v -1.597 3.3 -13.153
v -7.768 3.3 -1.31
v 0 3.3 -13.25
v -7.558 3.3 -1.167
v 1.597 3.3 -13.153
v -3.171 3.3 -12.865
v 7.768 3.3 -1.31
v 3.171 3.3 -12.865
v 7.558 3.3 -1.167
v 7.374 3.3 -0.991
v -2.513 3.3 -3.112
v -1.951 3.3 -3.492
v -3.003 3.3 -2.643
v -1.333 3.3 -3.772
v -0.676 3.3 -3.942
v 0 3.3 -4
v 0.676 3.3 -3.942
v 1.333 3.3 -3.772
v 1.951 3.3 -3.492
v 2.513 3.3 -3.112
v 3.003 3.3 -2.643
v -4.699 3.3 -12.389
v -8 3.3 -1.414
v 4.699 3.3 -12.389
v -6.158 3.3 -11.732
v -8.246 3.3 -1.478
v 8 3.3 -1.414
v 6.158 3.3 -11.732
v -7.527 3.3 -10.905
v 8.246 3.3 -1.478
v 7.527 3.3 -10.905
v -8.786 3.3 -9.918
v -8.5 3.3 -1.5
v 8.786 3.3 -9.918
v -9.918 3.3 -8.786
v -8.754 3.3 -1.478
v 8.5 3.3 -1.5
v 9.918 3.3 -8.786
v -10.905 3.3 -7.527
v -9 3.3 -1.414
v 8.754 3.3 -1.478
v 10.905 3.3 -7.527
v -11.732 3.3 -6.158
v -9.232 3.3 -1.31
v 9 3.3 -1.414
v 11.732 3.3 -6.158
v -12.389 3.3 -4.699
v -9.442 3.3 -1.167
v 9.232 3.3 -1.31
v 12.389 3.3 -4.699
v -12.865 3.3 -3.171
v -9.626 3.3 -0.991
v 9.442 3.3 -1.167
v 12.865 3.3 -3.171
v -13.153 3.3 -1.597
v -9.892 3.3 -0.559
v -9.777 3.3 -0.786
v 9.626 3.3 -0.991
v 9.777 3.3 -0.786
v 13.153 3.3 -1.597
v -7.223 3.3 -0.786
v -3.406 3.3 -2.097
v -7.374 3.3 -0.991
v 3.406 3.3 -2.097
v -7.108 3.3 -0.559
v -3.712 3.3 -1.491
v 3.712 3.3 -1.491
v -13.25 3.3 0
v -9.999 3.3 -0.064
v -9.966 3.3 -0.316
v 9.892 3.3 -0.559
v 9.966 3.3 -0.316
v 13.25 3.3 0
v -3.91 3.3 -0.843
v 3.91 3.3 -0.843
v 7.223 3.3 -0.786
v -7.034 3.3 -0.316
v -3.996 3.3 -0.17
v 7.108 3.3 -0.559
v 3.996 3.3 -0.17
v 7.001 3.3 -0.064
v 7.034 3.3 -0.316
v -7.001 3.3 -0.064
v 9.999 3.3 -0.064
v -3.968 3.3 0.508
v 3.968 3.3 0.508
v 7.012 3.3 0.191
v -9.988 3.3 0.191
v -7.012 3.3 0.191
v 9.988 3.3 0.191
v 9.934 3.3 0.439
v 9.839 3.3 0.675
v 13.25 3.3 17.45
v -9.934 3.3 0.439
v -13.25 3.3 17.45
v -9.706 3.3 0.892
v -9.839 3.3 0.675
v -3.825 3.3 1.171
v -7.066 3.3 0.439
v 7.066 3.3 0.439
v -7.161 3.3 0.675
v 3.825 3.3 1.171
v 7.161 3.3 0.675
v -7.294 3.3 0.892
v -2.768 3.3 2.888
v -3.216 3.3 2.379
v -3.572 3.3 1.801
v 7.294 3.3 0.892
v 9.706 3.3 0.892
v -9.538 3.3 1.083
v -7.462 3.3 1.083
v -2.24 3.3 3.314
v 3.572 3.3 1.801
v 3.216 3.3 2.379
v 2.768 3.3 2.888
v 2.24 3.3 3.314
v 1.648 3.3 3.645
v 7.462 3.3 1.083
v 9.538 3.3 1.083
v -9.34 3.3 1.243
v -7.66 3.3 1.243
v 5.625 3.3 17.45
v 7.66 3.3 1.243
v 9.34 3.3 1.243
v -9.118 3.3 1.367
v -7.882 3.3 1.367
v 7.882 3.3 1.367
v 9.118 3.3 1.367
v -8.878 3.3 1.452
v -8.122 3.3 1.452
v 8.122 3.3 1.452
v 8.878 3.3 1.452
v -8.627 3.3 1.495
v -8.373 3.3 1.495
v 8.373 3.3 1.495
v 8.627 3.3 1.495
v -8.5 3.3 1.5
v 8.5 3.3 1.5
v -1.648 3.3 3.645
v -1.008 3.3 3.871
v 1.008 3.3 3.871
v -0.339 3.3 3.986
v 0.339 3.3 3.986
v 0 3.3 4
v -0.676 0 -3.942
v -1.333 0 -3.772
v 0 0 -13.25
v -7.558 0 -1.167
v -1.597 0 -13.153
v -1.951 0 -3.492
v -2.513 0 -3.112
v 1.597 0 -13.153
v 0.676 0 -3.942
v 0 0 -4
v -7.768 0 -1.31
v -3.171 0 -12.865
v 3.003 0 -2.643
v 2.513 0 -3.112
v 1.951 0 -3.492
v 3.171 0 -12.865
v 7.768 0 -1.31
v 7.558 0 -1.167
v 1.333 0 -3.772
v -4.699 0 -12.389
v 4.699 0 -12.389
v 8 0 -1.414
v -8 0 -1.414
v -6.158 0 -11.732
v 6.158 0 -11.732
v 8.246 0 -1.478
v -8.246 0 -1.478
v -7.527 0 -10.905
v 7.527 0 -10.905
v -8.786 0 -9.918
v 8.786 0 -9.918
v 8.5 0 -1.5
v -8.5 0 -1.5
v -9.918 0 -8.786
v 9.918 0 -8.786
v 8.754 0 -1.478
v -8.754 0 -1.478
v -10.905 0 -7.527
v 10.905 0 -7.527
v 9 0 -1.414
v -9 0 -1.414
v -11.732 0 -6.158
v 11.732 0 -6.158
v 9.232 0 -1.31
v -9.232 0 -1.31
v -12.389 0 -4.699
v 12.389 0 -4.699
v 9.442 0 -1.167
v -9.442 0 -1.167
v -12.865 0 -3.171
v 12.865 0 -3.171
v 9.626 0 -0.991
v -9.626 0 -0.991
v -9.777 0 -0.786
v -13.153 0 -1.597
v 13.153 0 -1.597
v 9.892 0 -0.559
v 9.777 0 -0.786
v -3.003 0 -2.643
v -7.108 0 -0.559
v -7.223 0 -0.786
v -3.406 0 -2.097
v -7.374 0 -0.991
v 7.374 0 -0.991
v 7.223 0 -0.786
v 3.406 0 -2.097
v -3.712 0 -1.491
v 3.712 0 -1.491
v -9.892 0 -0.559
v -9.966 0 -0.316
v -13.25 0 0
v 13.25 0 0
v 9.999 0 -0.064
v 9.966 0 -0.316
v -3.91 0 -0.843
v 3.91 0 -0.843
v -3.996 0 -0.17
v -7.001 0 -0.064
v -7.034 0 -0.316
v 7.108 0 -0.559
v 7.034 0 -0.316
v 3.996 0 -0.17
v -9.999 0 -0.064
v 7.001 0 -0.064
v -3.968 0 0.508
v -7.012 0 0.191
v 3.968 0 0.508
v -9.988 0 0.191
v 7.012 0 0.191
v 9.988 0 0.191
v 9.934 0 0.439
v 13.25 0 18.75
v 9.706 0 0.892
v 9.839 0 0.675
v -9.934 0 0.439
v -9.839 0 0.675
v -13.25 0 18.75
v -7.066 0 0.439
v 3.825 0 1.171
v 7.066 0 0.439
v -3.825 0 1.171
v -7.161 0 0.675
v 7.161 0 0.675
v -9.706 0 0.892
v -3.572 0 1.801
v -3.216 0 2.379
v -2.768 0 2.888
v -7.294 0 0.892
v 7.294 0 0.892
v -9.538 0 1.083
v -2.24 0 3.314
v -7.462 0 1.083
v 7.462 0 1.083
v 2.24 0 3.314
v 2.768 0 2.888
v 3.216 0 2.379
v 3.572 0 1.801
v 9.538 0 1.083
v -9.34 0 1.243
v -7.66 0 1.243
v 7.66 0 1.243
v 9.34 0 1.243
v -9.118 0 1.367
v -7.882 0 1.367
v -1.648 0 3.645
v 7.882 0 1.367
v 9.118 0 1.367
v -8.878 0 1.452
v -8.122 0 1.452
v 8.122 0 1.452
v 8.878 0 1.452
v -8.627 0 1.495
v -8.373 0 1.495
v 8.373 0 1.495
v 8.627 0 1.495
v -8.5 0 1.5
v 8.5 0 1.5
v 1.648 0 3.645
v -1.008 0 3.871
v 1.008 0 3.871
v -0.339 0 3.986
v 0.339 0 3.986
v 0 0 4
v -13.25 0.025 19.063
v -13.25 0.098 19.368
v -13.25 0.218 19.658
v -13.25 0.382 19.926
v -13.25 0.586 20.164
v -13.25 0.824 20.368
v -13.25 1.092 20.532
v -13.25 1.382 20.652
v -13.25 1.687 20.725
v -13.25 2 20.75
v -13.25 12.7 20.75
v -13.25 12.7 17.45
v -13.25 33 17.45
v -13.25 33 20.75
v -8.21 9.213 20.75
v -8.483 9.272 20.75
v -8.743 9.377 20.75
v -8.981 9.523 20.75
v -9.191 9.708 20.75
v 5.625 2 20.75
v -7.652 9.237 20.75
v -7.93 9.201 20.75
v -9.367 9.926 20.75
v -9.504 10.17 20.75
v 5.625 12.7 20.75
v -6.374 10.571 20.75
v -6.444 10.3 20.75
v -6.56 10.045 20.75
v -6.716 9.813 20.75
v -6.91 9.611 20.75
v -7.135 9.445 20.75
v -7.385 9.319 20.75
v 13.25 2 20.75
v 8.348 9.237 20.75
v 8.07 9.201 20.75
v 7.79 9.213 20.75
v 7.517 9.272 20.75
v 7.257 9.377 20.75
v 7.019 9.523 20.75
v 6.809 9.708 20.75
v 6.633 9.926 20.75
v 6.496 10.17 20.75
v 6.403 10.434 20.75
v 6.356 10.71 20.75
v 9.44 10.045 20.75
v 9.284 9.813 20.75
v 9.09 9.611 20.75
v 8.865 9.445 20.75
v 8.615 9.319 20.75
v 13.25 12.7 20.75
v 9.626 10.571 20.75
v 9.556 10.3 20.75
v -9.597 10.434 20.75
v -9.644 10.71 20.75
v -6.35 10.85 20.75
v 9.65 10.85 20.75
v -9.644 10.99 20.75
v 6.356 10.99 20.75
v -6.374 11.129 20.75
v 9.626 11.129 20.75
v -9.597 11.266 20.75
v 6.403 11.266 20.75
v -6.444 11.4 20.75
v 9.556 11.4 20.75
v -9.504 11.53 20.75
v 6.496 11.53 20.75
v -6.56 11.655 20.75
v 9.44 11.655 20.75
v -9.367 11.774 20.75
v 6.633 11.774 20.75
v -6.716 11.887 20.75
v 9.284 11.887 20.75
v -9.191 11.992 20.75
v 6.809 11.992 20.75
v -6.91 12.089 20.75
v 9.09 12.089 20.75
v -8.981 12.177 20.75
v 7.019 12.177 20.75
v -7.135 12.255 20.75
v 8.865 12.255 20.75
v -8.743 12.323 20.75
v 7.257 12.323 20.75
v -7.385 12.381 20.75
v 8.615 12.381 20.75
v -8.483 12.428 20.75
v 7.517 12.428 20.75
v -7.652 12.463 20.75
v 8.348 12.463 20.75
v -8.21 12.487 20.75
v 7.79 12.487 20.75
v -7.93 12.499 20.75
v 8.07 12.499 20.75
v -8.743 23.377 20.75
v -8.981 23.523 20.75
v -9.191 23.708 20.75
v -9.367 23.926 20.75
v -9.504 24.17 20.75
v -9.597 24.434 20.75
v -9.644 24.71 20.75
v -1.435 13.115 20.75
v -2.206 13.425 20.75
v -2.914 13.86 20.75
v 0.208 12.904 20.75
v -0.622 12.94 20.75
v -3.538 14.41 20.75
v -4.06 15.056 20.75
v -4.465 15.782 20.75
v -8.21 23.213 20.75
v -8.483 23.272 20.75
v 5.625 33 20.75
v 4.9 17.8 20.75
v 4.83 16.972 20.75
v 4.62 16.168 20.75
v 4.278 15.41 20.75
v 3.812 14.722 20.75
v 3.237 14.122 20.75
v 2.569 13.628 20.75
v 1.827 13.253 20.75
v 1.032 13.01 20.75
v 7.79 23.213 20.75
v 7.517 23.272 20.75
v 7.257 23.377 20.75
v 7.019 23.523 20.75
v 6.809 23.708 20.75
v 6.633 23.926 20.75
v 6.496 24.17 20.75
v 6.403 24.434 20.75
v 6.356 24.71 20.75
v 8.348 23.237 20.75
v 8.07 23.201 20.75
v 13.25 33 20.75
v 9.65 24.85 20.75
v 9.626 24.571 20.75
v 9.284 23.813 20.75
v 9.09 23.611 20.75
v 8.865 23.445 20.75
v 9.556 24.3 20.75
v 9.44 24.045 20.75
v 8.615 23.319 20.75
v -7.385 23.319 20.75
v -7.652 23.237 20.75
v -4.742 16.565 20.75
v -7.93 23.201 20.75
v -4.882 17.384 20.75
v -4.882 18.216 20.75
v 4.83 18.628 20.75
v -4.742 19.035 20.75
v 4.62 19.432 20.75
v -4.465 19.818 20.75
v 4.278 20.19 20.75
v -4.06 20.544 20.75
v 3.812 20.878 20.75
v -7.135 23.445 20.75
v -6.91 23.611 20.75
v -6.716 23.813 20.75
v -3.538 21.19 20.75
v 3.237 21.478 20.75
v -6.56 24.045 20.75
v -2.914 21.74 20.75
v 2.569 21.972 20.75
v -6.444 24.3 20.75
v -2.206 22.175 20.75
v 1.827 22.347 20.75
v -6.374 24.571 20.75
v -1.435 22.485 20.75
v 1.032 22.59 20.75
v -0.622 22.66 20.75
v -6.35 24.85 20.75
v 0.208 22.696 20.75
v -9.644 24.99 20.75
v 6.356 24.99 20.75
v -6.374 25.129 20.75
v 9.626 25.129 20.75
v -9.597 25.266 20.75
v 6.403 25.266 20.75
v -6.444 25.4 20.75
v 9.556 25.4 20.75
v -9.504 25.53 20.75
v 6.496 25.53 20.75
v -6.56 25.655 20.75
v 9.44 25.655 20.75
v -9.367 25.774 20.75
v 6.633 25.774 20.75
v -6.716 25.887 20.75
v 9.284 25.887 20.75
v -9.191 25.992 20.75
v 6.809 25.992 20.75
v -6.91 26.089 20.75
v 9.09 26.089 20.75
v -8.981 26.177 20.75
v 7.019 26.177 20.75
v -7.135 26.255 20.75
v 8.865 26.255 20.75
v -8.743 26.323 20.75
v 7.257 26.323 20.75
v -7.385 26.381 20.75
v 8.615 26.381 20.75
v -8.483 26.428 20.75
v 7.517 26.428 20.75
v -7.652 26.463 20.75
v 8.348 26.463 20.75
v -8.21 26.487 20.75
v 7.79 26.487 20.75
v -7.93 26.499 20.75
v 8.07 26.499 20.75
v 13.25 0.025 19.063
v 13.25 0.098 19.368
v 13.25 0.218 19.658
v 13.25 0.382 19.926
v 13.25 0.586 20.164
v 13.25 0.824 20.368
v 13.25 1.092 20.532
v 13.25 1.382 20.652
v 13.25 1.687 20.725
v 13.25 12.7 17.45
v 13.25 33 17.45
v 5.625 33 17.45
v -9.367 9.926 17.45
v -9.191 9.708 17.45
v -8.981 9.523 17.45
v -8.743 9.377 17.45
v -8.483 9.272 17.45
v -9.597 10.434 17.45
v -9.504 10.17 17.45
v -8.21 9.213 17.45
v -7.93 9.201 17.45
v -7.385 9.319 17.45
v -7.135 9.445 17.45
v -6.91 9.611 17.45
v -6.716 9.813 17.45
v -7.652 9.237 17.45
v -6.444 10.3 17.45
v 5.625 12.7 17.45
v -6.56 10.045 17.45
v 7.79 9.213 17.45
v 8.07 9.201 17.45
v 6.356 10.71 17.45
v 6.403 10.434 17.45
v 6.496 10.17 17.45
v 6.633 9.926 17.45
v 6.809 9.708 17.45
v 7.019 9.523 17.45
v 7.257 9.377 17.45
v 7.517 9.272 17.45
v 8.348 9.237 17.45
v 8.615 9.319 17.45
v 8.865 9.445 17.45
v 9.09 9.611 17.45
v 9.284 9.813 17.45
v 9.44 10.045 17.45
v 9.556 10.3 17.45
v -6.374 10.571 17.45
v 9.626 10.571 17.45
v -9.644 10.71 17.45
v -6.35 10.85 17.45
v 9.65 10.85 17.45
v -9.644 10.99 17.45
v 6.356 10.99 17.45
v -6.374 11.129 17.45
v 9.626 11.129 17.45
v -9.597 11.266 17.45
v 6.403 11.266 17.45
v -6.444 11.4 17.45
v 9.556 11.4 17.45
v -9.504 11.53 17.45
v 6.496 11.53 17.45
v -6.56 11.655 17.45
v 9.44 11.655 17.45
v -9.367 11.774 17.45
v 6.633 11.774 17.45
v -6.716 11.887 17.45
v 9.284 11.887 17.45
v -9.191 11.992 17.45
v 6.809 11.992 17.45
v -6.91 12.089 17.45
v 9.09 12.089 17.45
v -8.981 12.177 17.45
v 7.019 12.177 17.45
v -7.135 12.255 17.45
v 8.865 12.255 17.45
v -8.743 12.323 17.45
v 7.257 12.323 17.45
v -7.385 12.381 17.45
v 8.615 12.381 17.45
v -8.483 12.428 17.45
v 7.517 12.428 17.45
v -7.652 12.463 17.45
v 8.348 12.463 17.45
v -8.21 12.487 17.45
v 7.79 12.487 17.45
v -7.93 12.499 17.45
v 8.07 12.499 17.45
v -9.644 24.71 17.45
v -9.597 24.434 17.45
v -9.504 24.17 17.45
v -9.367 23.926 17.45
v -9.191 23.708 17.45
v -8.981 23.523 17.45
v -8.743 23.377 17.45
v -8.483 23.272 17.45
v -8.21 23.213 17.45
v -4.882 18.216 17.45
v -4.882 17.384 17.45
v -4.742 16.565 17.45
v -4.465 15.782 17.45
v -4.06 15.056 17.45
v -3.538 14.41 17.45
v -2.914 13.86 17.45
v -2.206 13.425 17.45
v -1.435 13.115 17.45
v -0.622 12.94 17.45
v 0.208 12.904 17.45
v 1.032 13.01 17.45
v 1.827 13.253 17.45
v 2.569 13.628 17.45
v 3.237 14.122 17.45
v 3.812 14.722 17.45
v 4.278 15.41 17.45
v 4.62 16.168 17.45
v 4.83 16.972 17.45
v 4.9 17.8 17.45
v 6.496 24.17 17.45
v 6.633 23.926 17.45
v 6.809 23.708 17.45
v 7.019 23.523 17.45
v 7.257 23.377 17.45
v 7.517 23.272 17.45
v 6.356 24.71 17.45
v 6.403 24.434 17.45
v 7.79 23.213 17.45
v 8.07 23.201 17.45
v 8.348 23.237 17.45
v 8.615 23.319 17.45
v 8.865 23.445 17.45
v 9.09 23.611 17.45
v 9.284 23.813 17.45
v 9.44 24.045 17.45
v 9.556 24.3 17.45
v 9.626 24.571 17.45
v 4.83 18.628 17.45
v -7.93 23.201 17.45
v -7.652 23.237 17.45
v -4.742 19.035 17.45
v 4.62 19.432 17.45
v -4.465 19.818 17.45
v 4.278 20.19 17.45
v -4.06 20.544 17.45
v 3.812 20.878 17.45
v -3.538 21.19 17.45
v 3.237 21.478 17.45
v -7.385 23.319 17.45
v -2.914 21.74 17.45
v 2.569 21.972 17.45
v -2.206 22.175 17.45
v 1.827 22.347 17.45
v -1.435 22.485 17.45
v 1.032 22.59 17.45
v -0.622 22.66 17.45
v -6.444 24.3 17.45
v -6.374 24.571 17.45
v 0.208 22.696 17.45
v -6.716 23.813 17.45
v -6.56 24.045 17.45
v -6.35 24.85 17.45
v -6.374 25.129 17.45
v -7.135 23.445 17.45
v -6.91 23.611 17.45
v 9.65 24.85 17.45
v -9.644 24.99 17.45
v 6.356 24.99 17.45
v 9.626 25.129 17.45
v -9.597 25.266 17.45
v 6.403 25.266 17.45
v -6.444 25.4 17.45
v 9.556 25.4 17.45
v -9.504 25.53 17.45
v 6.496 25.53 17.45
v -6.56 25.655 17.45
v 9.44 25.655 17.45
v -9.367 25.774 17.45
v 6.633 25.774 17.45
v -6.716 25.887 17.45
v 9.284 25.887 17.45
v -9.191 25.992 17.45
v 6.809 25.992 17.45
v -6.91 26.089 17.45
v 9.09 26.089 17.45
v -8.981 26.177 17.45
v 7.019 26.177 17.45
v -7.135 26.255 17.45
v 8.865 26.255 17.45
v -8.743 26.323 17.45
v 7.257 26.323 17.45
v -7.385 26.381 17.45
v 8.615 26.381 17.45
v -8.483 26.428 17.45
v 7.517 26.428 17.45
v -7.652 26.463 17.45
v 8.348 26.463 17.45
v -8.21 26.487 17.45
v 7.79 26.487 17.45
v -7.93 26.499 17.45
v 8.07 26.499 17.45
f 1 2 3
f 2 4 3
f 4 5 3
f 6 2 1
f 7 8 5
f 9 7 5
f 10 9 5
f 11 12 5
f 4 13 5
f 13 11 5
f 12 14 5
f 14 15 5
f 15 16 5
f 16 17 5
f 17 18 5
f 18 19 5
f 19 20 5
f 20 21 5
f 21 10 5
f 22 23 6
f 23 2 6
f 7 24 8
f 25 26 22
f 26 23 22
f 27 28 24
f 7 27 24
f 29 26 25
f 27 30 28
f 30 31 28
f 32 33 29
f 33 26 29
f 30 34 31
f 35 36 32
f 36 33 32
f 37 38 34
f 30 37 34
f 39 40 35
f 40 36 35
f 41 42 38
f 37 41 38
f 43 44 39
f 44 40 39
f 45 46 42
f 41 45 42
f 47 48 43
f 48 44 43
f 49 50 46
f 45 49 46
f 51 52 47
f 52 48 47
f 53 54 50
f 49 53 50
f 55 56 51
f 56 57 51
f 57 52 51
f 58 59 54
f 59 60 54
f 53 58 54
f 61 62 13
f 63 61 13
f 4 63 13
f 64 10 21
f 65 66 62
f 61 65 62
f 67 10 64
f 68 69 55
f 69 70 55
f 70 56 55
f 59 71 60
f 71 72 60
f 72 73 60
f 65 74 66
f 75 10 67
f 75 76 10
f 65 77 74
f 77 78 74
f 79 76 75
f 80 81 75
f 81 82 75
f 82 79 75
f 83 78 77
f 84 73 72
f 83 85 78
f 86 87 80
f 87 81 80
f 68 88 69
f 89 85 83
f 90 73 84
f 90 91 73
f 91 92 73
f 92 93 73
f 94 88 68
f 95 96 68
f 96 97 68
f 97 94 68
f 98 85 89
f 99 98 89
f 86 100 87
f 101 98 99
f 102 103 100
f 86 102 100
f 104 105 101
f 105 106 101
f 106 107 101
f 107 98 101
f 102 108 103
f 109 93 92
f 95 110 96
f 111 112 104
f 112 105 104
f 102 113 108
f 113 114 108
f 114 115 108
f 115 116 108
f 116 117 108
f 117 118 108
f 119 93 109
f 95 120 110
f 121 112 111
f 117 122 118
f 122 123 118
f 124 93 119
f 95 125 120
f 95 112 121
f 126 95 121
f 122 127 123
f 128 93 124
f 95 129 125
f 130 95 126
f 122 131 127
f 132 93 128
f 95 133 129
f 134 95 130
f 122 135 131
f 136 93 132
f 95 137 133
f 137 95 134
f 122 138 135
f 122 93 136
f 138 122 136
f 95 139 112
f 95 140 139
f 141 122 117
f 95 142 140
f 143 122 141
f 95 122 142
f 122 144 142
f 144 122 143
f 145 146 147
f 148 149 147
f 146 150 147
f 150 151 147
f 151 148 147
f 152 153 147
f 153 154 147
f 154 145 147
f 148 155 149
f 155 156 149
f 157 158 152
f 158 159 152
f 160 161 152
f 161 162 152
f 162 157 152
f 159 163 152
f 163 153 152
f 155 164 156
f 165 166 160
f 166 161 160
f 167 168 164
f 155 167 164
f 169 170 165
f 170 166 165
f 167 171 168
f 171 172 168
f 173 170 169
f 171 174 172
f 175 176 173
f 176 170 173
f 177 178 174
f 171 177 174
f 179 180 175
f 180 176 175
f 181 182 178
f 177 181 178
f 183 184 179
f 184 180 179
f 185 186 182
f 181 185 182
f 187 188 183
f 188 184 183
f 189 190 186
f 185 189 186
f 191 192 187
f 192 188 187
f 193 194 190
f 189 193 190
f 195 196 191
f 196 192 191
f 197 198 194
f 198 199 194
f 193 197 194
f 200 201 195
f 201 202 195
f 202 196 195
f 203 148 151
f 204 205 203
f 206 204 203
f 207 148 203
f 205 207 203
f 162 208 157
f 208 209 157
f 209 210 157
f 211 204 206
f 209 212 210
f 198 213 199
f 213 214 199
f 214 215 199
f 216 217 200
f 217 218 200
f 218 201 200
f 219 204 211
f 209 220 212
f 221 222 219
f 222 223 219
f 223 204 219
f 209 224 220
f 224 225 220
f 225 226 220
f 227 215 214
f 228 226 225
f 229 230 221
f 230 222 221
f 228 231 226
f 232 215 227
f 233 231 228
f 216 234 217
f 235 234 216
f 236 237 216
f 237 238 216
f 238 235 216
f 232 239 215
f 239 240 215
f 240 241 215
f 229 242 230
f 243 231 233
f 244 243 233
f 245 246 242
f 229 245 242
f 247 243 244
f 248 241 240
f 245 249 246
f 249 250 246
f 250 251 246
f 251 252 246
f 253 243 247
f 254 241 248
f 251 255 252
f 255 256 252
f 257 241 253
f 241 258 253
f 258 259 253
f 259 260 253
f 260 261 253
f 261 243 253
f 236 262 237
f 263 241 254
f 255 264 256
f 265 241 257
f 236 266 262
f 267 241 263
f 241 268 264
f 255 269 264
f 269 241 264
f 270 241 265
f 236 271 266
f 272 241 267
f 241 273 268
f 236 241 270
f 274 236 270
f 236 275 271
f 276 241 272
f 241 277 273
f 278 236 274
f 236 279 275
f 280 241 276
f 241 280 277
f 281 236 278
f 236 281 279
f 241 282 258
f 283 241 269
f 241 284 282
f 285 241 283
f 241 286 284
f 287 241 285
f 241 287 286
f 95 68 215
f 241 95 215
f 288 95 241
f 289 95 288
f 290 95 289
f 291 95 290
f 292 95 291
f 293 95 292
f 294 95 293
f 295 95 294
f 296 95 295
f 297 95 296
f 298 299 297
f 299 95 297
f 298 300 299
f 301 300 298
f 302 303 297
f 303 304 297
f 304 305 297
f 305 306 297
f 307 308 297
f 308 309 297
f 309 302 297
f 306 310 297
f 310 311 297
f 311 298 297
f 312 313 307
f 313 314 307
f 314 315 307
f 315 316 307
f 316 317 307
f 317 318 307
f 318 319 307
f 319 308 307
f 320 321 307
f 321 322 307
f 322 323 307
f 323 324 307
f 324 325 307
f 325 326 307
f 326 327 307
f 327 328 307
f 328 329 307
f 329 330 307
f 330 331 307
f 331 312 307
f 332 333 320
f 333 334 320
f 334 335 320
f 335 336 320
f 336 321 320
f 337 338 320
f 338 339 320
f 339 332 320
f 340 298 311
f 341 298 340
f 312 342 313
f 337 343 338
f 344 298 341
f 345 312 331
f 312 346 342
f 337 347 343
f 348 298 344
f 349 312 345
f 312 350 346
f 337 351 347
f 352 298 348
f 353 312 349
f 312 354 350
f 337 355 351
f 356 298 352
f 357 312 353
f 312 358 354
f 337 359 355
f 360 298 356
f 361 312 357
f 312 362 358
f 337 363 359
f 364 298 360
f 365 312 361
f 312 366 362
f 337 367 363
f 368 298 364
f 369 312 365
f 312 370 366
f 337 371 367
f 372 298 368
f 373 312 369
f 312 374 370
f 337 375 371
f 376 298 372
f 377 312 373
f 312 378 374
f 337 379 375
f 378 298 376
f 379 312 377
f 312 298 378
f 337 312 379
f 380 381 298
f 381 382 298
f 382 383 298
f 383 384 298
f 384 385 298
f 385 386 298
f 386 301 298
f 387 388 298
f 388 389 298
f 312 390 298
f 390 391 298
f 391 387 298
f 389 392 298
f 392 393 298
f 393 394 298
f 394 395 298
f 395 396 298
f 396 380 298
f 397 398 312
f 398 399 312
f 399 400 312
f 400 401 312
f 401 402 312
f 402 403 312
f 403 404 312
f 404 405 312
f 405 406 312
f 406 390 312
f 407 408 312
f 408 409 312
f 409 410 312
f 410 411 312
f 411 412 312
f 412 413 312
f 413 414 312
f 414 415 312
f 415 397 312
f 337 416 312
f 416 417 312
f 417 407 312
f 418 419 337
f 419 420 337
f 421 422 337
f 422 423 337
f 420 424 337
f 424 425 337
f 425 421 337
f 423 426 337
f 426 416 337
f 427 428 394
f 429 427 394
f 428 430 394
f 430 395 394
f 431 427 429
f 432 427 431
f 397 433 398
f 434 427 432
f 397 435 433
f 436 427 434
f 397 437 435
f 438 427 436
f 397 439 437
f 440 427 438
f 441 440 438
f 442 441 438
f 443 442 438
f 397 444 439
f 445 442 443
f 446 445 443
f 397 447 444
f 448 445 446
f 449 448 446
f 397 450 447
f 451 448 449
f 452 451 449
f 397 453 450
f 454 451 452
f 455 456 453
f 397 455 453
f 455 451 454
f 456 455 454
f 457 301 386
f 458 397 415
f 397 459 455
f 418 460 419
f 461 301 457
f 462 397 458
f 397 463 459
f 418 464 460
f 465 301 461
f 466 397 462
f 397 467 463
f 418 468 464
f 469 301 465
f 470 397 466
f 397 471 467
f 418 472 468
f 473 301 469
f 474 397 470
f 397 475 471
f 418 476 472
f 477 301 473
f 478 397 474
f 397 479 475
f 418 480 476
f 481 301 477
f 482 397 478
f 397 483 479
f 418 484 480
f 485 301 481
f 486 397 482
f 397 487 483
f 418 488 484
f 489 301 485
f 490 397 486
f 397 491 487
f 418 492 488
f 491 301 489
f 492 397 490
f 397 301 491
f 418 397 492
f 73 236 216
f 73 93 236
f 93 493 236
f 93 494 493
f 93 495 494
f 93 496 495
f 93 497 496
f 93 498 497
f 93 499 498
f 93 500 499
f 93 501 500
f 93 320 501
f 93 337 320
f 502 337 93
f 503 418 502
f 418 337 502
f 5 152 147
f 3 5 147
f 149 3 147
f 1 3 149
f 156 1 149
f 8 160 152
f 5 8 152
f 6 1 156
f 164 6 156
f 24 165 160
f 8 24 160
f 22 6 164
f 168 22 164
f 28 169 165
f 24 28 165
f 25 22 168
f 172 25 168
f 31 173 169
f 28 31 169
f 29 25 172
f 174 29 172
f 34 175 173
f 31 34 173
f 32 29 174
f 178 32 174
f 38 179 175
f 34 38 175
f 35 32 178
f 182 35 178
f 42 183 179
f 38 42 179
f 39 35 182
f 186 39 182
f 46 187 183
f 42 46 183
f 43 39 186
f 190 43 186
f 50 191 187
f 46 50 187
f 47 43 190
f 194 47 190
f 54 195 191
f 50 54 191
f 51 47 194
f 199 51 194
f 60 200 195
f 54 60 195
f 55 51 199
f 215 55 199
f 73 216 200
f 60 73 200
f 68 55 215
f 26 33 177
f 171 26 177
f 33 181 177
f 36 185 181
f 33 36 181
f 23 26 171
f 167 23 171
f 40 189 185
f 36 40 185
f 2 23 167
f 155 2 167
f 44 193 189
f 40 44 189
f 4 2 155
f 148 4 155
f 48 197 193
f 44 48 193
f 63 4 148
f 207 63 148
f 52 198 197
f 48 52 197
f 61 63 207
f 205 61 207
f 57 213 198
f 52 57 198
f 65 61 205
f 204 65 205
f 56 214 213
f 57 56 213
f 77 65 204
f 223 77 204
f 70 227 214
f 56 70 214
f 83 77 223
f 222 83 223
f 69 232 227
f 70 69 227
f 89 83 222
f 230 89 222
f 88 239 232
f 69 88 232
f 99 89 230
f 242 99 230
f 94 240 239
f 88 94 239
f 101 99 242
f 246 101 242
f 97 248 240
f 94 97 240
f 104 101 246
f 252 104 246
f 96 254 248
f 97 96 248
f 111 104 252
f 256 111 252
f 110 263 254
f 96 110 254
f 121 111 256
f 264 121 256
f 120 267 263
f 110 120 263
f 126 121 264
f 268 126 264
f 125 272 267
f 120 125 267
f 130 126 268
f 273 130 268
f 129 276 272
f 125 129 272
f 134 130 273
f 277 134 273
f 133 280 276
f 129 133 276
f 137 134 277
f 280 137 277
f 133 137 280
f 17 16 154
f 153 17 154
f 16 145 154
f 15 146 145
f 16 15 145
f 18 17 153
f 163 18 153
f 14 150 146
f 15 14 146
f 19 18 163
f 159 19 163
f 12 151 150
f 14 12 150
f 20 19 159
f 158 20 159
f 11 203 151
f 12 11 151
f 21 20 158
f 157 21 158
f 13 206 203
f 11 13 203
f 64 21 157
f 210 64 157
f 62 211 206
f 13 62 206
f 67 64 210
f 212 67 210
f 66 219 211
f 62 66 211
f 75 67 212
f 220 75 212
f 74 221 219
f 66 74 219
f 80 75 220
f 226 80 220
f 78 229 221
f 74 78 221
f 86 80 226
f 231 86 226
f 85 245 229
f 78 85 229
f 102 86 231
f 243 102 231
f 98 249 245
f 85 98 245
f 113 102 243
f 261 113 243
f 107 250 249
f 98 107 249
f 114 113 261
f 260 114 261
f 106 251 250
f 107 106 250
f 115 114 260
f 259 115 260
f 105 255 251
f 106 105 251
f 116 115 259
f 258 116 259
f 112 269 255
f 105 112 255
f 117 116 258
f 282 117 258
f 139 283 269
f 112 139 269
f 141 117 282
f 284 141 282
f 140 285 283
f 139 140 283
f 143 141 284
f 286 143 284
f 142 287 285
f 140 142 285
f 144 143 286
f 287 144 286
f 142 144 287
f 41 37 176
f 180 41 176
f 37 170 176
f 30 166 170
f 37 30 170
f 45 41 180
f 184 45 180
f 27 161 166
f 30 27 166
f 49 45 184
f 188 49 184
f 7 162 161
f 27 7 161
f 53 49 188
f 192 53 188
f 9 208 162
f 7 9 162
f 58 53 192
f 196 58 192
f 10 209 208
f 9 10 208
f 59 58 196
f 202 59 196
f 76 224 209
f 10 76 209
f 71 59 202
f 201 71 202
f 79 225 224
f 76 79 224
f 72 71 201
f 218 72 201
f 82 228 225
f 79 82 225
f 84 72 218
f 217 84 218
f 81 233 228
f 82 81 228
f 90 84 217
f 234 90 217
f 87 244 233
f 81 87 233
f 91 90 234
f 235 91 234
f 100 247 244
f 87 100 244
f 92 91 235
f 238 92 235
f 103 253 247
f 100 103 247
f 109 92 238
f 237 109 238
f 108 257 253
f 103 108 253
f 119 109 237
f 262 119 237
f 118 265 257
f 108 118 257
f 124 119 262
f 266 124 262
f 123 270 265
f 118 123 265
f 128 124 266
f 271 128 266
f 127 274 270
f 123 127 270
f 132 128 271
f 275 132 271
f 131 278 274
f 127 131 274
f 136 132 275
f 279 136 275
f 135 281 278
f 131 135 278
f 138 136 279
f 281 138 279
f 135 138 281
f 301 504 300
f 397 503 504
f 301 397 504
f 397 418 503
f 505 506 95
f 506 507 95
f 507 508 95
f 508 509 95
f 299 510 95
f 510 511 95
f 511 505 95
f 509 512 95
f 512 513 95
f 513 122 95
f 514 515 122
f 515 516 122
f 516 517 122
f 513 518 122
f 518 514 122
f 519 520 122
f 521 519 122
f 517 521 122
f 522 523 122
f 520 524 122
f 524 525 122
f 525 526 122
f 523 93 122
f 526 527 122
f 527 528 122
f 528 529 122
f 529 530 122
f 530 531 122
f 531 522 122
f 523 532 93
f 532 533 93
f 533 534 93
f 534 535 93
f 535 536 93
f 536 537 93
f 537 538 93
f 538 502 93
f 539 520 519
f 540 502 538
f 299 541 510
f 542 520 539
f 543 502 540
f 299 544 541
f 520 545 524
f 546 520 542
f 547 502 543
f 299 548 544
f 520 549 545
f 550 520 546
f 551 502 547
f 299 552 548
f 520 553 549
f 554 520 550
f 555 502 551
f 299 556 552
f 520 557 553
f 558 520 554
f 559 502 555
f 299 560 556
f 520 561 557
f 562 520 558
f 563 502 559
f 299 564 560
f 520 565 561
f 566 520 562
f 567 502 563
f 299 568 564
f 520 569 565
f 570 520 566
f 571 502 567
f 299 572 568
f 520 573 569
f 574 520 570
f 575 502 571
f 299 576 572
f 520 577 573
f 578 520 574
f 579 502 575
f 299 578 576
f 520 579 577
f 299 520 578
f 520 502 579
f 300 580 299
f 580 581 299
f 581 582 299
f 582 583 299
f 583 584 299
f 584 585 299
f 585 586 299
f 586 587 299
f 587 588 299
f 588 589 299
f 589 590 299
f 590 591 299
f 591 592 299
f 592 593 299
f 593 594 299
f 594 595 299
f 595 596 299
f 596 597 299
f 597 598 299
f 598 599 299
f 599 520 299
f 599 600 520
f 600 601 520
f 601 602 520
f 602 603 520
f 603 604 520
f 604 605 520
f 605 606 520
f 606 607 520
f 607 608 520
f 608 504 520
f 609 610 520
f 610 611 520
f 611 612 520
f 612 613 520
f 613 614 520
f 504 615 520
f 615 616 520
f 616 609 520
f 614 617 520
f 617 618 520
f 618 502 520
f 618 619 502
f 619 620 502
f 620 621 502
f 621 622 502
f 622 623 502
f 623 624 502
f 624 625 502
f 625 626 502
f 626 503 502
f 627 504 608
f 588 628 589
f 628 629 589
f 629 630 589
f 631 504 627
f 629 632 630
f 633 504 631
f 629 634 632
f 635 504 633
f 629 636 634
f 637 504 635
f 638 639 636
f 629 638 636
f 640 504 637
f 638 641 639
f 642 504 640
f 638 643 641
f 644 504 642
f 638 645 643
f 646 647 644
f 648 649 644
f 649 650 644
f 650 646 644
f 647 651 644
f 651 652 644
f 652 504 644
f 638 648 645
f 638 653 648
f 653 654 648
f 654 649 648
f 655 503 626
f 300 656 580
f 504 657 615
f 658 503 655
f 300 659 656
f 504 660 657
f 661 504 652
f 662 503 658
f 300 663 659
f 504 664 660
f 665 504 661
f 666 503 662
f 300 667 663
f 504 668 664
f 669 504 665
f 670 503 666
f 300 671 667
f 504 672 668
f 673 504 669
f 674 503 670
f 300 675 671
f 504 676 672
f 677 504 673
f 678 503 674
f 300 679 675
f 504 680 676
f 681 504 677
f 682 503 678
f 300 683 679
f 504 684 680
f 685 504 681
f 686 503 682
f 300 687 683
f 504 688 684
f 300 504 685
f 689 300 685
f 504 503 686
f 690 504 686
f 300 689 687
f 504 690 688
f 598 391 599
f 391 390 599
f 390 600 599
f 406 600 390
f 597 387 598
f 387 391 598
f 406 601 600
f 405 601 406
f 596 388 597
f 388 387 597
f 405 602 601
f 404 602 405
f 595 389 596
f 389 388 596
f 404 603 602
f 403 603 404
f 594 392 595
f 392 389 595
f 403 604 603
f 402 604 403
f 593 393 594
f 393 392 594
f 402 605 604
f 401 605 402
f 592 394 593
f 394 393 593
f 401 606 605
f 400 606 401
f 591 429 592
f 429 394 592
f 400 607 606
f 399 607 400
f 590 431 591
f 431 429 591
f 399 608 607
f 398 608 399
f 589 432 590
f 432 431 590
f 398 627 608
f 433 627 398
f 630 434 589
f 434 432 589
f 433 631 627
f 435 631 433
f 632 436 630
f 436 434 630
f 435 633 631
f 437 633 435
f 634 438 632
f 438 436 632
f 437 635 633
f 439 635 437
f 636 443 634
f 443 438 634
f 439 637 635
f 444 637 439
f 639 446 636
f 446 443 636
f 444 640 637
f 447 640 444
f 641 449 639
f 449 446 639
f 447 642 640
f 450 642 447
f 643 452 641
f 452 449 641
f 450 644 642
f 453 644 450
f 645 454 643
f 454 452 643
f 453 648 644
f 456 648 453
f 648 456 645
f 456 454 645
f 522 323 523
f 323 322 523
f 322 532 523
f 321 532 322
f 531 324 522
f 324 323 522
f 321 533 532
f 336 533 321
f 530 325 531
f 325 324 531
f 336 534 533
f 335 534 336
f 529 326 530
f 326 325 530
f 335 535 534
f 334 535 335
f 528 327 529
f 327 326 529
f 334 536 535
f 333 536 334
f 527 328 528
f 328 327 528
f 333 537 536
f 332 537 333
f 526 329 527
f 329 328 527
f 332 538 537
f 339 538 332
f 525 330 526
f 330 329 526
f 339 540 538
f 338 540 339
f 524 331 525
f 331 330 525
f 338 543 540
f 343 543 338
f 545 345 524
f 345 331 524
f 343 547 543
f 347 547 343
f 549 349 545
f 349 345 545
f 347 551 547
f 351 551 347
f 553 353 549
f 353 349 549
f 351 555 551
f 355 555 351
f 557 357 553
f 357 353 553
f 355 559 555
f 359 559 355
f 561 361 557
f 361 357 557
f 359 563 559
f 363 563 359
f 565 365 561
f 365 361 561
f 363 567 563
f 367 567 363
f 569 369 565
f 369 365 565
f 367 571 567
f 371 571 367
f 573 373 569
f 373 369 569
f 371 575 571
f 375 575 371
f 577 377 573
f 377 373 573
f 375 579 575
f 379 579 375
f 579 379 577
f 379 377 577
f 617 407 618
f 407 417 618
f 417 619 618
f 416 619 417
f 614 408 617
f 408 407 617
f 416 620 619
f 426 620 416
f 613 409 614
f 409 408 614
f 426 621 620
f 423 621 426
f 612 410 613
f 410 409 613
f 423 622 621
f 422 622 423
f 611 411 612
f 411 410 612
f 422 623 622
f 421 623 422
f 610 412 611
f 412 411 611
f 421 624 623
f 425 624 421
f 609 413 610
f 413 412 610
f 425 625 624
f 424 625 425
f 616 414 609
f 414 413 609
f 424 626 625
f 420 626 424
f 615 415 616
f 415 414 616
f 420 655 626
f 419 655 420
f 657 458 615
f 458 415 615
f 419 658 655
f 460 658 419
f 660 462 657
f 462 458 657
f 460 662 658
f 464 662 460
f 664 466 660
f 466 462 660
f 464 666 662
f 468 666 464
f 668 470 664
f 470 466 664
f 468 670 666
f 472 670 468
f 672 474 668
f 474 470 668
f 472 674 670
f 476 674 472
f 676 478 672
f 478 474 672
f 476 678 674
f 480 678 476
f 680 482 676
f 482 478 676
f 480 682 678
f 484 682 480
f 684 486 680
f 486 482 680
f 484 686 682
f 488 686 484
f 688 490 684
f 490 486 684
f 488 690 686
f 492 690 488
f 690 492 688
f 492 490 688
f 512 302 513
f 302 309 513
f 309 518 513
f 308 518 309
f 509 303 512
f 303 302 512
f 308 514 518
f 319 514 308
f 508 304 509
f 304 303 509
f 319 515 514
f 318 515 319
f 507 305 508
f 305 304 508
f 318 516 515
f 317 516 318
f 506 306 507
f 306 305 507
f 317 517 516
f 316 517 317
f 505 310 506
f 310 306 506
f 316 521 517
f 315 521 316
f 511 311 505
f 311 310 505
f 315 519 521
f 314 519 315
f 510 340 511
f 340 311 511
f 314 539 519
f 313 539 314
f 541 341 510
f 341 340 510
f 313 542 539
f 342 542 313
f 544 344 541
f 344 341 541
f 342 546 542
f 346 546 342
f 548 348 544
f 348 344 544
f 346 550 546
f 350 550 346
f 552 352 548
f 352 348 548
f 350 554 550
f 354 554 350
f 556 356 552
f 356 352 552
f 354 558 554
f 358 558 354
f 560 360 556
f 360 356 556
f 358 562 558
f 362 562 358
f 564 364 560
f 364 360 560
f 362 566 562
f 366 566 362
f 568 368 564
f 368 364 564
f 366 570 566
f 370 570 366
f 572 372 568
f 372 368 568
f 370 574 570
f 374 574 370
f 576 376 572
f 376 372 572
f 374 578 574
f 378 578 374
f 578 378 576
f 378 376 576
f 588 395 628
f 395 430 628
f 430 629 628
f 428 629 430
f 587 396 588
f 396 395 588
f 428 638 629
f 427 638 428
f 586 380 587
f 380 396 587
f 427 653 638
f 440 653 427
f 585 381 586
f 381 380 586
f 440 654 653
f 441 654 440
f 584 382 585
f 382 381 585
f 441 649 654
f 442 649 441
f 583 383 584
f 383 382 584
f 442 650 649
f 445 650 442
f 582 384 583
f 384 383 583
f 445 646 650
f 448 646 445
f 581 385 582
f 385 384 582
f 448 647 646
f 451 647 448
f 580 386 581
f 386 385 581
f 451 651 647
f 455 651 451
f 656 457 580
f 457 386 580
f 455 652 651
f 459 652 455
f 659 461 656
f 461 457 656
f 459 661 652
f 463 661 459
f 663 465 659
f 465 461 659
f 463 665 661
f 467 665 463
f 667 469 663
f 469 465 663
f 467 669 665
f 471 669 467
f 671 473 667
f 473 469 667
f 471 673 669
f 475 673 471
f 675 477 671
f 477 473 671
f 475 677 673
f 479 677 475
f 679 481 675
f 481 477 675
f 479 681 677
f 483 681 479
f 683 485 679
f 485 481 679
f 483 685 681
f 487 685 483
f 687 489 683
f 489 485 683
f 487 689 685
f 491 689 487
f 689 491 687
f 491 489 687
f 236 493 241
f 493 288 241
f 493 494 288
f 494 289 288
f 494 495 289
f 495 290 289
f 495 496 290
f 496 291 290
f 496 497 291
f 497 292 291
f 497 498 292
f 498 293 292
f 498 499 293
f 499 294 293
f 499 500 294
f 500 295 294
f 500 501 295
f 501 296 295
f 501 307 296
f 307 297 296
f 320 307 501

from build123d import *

# Parameters (mm, degrees)
BASE_FACE_R         = 4
BASE_FACE_R_2       = 1.5
BASE_DEPTH          = 3.3
SKETCH3_W           = 26.5
SKETCH3_H           = 33
SKETCH3_R           = 4.9
SKETCH3_R_2         = 1.65
BOSS_EXTRUDE2_DEPTH = 3.3
FILLET1_R           = 2


with BuildPart() as part:
    # Base Face → Base (new body)
    with BuildSketch(Plane(origin=(0, 0, 0), x_dir=(1, 0, 0), z_dir=(0, 1, 0))):
        with BuildLine():
            Line((-13.25, 0), (-13.25, -20.75))
            Line((-13.25, -20.75), (13.25, -20.75))
            Line((13.25, -20.75), (13.25, 0))
            ThreePointArc((13.25, 0), (0, 13.25), (-13.25, 0))
        make_face()
        Circle(BASE_FACE_R, mode=Mode.SUBTRACT)
        with Locations((-8.5, 0)):
            Circle(BASE_FACE_R_2, mode=Mode.SUBTRACT)
        with Locations((8.5, 0)):
            Circle(BASE_FACE_R_2, mode=Mode.SUBTRACT)
    extrude(amount=BASE_DEPTH)

    # Sketch3 → Boss-Extrude2 (add)
    with BuildSketch(Plane.XY.offset(20.75)):
        with Locations((0, 16.5)):
            Rectangle(SKETCH3_W, SKETCH3_H)
        with Locations((0, 17.8)):
            Circle(SKETCH3_R, mode=Mode.SUBTRACT)
        with Locations((8, 10.85)):
            Circle(SKETCH3_R_2, mode=Mode.SUBTRACT)
        with Locations((8, 24.85)):
            Circle(SKETCH3_R_2, mode=Mode.SUBTRACT)
        with Locations((-8, 10.85)):
            Circle(SKETCH3_R_2, mode=Mode.SUBTRACT)
        with Locations((-8, 24.85)):
            Circle(SKETCH3_R_2, mode=Mode.SUBTRACT)
    extrude(amount=-BOSS_EXTRUDE2_DEPTH)

    # Fillet1
    fillet1_edges = [part.edges().sort_by_distance(p)[0] for p in [
        (0, 0, 20.75),
    ]]
    fillet(fillet1_edges, radius=FILLET1_R)


solid = part.part
